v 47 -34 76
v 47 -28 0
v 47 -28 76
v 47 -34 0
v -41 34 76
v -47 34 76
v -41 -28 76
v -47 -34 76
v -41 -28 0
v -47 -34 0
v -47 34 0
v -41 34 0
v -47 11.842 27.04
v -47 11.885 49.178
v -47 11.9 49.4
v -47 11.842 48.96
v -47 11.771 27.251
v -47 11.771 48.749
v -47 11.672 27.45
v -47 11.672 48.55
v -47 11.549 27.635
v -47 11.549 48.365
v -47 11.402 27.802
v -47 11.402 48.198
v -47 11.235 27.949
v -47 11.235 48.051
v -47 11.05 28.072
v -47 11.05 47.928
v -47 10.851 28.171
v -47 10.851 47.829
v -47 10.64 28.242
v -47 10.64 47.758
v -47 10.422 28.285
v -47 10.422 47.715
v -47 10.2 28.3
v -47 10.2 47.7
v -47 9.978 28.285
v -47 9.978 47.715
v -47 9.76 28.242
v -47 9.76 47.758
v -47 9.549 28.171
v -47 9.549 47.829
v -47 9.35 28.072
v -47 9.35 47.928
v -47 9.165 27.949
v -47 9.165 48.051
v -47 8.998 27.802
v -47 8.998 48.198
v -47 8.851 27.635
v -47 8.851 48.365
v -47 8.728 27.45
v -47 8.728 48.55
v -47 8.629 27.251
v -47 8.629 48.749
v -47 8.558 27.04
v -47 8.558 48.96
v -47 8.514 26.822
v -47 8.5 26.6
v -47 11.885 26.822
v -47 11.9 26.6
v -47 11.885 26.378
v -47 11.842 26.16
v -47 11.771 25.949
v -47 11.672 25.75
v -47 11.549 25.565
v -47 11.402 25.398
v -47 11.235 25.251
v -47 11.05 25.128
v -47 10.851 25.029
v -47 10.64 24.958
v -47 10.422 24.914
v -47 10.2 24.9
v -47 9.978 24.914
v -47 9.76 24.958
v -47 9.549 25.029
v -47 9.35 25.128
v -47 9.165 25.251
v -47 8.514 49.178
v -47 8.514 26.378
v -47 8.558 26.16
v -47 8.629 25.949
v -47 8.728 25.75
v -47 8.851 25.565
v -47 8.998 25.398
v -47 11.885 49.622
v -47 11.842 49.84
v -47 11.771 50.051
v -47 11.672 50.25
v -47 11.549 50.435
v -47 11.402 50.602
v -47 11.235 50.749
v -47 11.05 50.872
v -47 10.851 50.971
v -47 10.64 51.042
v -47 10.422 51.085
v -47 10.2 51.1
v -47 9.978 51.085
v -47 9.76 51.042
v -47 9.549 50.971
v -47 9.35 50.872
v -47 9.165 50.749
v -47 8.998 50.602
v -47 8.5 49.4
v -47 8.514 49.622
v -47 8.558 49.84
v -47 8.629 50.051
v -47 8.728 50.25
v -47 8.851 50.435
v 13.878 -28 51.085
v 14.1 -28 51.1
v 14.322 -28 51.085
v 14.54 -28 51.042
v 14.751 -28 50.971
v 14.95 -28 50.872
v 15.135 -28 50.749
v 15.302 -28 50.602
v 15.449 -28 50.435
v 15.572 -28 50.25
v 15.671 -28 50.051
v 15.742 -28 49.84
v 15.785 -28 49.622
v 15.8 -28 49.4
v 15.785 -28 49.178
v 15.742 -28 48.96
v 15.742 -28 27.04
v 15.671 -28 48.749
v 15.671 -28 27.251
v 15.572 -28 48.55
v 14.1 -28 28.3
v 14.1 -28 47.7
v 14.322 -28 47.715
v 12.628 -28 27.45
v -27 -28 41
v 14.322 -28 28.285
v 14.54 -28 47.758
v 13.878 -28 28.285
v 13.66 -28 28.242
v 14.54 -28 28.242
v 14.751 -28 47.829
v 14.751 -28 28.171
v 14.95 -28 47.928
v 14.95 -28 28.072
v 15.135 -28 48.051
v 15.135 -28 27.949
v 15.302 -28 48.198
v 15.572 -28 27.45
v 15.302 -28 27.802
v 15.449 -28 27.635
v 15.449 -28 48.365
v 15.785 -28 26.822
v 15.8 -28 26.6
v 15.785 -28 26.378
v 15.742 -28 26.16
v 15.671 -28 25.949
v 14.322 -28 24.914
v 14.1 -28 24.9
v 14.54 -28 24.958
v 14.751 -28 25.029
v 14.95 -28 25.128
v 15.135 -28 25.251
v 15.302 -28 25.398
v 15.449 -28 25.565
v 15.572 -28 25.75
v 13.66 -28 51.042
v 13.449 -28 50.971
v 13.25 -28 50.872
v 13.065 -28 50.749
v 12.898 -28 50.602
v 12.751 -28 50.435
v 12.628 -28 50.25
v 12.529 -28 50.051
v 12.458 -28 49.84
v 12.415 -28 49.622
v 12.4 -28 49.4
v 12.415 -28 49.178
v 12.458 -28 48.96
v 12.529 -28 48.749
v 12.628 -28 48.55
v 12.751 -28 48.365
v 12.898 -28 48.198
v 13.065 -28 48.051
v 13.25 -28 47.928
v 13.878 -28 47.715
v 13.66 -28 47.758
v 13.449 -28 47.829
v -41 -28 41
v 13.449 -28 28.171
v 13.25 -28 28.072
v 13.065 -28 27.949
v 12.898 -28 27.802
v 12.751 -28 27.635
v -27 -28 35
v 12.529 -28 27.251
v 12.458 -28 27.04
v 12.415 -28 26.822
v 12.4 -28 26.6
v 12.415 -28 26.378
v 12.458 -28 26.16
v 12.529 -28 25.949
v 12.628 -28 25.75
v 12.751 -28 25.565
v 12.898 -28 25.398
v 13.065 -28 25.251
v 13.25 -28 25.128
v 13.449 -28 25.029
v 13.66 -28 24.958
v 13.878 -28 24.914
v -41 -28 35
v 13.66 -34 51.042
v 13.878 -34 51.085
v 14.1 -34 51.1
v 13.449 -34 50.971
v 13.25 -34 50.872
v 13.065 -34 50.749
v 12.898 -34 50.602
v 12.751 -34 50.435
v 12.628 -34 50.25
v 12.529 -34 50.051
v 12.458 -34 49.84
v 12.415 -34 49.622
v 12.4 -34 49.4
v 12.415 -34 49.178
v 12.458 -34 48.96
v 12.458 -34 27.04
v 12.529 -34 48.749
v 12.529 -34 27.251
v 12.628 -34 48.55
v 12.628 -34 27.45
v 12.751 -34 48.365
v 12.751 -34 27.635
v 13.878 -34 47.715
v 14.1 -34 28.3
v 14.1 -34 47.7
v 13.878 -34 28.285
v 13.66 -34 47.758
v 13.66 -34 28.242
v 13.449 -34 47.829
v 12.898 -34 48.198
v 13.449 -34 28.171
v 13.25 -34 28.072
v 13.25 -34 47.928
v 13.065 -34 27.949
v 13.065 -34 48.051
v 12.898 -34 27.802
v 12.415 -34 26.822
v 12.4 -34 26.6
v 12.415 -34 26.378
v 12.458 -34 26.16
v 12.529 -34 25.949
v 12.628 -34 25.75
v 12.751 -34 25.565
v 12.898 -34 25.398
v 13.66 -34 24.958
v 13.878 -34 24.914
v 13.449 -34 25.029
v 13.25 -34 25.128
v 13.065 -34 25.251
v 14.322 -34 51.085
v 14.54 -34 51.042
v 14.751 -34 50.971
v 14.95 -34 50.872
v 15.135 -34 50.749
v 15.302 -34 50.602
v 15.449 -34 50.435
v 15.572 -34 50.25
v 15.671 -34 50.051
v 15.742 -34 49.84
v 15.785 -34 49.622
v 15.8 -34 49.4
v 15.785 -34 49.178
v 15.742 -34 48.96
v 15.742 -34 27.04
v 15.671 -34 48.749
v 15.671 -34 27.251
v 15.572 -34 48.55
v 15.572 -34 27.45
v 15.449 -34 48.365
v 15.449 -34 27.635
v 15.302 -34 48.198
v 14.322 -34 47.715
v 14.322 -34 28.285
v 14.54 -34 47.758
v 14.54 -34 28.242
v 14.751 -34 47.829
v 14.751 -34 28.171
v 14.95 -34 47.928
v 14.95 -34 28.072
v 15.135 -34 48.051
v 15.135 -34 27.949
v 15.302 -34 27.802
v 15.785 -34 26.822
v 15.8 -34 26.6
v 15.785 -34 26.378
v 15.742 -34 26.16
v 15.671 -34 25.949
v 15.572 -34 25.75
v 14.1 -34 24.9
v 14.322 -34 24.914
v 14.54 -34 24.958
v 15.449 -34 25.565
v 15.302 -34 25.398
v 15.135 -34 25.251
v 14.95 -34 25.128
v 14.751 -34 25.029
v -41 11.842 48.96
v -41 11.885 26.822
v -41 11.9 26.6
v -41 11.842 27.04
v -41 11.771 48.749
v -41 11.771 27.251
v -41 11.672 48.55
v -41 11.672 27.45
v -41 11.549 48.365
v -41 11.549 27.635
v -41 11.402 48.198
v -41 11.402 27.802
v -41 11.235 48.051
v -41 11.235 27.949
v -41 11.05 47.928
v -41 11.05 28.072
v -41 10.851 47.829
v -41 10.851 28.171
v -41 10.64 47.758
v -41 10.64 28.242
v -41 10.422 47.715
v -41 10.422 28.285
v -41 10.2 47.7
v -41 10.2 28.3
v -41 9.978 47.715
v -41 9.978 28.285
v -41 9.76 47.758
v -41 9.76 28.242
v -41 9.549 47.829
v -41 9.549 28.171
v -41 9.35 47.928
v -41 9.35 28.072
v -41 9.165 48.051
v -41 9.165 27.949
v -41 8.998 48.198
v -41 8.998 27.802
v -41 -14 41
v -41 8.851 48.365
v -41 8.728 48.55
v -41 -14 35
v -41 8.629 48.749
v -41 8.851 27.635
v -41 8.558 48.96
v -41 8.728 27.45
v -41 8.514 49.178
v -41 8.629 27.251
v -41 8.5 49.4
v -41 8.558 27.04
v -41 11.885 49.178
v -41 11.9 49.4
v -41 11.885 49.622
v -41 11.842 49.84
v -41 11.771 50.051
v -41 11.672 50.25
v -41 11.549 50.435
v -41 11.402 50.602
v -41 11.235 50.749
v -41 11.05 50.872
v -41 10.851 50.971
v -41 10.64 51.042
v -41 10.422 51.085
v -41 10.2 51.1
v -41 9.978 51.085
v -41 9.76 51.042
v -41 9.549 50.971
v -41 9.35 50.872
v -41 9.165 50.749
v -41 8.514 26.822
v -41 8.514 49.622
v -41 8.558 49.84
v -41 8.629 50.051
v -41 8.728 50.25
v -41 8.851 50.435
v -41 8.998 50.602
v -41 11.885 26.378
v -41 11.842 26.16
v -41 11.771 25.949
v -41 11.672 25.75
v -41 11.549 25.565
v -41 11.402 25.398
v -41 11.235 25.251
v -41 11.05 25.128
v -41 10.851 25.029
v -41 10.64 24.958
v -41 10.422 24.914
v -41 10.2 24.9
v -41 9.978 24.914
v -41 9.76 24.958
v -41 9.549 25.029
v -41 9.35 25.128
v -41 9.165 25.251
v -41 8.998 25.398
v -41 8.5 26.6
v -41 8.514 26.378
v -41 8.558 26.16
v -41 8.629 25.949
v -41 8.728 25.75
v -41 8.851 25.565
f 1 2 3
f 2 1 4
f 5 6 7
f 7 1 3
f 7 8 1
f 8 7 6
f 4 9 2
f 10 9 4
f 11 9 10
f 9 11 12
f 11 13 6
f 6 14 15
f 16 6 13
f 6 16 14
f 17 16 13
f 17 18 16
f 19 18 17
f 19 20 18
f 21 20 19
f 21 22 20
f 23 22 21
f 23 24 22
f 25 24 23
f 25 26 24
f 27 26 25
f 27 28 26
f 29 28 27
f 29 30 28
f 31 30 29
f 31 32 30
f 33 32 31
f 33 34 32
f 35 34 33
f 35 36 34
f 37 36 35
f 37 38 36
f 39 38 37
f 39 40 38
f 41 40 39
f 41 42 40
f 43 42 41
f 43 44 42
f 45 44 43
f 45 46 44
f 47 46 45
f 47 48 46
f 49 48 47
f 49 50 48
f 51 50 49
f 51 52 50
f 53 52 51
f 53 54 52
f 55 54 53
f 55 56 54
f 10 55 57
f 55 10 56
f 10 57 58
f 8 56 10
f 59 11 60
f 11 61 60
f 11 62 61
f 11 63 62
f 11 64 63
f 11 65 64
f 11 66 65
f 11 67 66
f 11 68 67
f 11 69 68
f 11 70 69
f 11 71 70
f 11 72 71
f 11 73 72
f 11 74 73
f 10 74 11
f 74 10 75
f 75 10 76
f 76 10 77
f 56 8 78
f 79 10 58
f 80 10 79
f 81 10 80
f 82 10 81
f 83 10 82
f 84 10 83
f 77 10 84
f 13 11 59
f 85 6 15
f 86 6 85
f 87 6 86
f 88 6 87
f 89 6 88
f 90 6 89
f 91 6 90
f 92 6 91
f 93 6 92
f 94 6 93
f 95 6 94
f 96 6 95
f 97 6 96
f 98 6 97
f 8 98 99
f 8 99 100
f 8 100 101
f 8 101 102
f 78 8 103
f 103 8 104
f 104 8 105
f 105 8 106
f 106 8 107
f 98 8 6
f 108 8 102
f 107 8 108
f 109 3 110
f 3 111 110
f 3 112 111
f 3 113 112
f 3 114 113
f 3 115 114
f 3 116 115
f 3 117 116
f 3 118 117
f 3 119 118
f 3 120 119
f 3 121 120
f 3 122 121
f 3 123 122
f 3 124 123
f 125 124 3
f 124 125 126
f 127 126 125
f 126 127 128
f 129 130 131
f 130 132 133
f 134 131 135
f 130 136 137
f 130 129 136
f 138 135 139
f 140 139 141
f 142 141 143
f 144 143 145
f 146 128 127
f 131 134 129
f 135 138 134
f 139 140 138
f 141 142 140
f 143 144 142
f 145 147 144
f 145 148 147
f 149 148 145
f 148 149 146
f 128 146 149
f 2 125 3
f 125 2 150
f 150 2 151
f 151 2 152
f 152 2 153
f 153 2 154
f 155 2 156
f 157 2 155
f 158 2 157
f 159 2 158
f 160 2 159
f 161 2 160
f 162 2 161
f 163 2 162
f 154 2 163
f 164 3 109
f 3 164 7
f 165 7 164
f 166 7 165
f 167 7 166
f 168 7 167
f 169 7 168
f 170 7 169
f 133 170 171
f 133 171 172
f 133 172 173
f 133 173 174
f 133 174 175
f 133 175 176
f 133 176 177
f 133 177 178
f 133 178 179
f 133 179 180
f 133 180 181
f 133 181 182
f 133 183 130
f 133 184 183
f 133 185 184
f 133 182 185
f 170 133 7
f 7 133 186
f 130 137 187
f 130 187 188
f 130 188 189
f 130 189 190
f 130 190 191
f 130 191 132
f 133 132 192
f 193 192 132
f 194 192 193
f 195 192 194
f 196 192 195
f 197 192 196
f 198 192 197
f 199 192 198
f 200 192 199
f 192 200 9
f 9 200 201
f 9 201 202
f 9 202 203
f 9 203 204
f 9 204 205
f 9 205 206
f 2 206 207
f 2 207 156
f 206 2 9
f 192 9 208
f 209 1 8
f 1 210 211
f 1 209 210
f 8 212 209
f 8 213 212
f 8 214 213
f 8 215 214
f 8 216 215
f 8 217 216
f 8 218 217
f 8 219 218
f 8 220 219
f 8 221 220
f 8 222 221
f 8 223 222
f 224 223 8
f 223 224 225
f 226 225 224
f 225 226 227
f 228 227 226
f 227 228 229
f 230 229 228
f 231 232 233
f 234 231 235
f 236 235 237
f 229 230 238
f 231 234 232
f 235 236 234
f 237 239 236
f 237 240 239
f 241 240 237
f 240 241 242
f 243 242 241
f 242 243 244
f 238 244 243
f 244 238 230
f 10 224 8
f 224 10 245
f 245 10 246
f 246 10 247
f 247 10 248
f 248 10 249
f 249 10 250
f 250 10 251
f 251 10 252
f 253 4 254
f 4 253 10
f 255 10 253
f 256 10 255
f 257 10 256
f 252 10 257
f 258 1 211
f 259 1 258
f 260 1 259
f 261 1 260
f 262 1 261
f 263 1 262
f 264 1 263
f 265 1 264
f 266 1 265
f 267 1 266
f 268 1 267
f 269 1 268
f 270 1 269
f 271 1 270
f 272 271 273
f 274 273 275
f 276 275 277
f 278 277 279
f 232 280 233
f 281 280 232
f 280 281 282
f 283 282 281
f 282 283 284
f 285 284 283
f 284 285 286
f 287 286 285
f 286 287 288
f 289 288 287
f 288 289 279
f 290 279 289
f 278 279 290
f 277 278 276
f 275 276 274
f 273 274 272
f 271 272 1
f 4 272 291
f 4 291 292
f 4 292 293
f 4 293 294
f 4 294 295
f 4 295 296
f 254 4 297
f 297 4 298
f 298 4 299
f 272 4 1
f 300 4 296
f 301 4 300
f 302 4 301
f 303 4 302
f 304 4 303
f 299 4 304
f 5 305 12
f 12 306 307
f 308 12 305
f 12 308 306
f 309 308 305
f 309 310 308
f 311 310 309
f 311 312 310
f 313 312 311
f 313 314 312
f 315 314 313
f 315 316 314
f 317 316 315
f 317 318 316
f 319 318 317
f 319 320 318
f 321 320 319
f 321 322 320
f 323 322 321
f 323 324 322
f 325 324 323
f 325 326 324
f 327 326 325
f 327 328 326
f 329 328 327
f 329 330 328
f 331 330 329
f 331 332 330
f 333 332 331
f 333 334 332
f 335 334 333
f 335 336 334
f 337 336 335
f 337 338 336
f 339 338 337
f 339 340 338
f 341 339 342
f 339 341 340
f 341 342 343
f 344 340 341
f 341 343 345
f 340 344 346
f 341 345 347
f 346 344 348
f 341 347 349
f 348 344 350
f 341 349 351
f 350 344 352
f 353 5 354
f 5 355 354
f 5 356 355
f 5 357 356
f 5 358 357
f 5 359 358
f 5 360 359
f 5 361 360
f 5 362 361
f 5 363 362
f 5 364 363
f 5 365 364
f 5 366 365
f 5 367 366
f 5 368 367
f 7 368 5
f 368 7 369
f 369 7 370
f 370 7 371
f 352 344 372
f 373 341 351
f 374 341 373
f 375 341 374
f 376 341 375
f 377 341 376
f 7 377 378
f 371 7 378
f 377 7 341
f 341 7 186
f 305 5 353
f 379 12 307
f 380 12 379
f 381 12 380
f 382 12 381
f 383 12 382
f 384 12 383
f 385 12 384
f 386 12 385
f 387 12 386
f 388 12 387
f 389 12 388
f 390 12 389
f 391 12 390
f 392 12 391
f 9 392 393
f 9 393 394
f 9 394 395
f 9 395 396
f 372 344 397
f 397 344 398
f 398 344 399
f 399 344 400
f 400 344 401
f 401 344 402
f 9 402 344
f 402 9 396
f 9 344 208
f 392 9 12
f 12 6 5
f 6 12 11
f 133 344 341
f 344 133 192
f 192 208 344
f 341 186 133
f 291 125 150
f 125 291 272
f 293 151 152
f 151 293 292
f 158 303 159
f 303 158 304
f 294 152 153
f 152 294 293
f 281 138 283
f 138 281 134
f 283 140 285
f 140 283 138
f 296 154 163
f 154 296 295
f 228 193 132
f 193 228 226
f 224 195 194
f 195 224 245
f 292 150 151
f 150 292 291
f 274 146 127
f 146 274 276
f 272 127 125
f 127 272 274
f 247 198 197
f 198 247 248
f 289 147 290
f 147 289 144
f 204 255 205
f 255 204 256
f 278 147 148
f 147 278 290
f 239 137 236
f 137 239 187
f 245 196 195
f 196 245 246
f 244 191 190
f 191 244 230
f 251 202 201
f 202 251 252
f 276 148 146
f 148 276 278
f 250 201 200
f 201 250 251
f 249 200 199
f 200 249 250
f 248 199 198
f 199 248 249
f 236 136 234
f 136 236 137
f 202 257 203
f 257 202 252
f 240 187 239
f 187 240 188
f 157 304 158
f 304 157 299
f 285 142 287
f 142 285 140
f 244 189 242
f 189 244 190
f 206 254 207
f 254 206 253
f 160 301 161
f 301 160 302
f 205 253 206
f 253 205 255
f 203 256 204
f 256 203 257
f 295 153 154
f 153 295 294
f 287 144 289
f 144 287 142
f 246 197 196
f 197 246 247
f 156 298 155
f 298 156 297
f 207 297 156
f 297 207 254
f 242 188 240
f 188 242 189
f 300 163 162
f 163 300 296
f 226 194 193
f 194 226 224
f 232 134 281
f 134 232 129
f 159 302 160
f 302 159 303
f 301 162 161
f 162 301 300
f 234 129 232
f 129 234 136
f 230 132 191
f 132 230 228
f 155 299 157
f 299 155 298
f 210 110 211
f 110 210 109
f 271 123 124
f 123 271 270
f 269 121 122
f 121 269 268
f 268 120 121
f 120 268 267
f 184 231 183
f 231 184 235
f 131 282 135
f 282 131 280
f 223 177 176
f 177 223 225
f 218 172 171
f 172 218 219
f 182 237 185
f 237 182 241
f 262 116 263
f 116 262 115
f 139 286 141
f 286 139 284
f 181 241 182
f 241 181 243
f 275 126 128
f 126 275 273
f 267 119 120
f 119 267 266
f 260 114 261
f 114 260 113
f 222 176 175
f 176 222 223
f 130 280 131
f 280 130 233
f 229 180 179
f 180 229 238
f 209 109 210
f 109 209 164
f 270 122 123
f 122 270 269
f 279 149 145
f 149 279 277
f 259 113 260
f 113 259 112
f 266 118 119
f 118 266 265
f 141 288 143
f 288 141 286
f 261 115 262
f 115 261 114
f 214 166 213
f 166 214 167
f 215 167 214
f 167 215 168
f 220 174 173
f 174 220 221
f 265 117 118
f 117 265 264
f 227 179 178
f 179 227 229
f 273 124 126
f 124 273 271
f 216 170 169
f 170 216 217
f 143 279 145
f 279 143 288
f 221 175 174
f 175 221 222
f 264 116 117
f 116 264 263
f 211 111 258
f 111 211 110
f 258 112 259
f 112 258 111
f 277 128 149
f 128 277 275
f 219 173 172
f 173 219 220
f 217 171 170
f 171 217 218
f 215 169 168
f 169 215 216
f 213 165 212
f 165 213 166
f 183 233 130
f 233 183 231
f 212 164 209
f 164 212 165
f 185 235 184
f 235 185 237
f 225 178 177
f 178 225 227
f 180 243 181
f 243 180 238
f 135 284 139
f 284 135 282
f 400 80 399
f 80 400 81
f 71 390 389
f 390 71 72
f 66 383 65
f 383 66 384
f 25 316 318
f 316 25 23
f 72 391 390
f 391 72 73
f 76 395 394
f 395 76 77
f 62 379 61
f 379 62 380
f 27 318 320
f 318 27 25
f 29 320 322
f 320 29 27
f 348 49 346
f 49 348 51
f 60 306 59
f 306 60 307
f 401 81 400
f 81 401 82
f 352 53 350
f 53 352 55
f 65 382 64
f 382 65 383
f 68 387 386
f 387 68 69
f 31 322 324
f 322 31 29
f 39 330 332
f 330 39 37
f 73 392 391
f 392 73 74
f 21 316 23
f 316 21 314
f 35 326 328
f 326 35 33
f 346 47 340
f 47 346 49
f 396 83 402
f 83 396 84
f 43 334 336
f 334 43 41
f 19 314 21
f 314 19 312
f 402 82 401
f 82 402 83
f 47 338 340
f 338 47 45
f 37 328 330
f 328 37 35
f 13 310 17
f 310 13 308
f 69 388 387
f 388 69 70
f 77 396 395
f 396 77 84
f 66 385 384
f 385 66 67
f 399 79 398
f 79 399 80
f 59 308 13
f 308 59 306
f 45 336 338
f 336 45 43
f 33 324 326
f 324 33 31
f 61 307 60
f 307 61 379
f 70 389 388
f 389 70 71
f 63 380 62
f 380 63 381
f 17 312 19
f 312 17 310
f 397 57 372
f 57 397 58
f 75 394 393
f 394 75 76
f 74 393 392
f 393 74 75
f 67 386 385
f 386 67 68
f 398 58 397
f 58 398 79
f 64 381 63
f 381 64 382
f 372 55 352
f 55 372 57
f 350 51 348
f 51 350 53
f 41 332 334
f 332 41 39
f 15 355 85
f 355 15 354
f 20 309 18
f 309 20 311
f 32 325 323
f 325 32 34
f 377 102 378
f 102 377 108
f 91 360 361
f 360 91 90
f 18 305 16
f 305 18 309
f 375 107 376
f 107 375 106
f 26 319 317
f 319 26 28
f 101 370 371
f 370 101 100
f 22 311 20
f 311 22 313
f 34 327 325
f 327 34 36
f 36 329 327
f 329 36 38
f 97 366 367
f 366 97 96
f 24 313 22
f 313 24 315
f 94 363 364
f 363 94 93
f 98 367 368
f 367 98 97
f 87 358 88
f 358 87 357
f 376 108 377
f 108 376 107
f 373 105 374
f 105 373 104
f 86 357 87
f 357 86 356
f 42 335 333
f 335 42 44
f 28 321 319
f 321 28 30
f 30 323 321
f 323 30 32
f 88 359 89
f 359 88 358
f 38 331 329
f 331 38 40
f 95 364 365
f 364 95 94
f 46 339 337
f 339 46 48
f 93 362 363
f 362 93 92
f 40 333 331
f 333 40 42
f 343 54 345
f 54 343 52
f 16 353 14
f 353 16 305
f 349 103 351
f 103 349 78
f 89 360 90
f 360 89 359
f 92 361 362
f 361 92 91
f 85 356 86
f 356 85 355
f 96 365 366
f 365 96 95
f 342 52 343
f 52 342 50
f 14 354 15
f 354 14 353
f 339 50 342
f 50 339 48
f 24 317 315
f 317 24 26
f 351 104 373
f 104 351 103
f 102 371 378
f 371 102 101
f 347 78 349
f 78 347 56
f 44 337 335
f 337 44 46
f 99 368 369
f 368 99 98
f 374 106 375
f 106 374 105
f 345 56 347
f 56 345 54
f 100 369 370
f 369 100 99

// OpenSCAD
// ============================================================================
// Get Me An Alt — Parametric OpenSCAD Module
// Part: PRT-03 — J2 Dual-Servo Shoulder U-Yoke Bracket (shoulder-yoke)
// Function: Mounts J2 shoulder actuator to the rotating turntable.
// Target Bounding Box (mm): [94, 68, 76]
// Print Material: PETG | Min Wall: >= 1.6mm | Tolerance: 0.2mm
// ============================================================================
$fn = 48;
part_width = 94;
part_depth = 68;
part_height = 76;
wall_thickness = 4;
floor_thickness = 4;
corner_radius = 6;
tolerance = 0.2;
m3_clearance_d = 3.4; // M3 screw clearance hole (3.0mm + 2*0.2mm)

module rounded_rect_prism(w, d, h, r) {
  cr = max(0.5, min(r, min(w, d) / 2 - 0.1));
  linear_extrude(height = h)
    offset(r = cr)
      offset(r = -cr)
        square([w, d], center = true);
}

module part_shoulder_yoke() {
  t = 6;
  translate([-part_width / 2, -part_depth / 2, 0])
  difference() {
    union() {
      // Horizontal leg A
      cube([part_width, t, part_height]);
      // Vertical leg B
      cube([t, part_depth, part_height]);
      // Corner gusset rib
      translate([0, 0, part_height * 0.5 - t * 0.5])
        linear_extrude(height = t)
          polygon(points = [[t, t], [min(part_width * 0.55, 20), t], [t, min(part_depth * 0.55, 20)]]);
    }
    // M3 mounting holes on leg A
    translate([part_width * 0.65, t + 1, part_height * 0.35])
      rotate([90, 0, 0]) cylinder(h = t + 2, d = m3_clearance_d);
    translate([part_width * 0.65, t + 1, part_height * 0.65])
      rotate([90, 0, 0]) cylinder(h = t + 2, d = m3_clearance_d);
    // M3 mounting holes on leg B
    translate([-1, part_depth * 0.65, part_height * 0.35])
      rotate([0, 90, 0]) cylinder(h = t + 2, d = m3_clearance_d);
    translate([-1, part_depth * 0.65, part_height * 0.65])
      rotate([0, 90, 0]) cylinder(h = t + 2, d = m3_clearance_d);
  }
}

part_shoulder_yoke();
